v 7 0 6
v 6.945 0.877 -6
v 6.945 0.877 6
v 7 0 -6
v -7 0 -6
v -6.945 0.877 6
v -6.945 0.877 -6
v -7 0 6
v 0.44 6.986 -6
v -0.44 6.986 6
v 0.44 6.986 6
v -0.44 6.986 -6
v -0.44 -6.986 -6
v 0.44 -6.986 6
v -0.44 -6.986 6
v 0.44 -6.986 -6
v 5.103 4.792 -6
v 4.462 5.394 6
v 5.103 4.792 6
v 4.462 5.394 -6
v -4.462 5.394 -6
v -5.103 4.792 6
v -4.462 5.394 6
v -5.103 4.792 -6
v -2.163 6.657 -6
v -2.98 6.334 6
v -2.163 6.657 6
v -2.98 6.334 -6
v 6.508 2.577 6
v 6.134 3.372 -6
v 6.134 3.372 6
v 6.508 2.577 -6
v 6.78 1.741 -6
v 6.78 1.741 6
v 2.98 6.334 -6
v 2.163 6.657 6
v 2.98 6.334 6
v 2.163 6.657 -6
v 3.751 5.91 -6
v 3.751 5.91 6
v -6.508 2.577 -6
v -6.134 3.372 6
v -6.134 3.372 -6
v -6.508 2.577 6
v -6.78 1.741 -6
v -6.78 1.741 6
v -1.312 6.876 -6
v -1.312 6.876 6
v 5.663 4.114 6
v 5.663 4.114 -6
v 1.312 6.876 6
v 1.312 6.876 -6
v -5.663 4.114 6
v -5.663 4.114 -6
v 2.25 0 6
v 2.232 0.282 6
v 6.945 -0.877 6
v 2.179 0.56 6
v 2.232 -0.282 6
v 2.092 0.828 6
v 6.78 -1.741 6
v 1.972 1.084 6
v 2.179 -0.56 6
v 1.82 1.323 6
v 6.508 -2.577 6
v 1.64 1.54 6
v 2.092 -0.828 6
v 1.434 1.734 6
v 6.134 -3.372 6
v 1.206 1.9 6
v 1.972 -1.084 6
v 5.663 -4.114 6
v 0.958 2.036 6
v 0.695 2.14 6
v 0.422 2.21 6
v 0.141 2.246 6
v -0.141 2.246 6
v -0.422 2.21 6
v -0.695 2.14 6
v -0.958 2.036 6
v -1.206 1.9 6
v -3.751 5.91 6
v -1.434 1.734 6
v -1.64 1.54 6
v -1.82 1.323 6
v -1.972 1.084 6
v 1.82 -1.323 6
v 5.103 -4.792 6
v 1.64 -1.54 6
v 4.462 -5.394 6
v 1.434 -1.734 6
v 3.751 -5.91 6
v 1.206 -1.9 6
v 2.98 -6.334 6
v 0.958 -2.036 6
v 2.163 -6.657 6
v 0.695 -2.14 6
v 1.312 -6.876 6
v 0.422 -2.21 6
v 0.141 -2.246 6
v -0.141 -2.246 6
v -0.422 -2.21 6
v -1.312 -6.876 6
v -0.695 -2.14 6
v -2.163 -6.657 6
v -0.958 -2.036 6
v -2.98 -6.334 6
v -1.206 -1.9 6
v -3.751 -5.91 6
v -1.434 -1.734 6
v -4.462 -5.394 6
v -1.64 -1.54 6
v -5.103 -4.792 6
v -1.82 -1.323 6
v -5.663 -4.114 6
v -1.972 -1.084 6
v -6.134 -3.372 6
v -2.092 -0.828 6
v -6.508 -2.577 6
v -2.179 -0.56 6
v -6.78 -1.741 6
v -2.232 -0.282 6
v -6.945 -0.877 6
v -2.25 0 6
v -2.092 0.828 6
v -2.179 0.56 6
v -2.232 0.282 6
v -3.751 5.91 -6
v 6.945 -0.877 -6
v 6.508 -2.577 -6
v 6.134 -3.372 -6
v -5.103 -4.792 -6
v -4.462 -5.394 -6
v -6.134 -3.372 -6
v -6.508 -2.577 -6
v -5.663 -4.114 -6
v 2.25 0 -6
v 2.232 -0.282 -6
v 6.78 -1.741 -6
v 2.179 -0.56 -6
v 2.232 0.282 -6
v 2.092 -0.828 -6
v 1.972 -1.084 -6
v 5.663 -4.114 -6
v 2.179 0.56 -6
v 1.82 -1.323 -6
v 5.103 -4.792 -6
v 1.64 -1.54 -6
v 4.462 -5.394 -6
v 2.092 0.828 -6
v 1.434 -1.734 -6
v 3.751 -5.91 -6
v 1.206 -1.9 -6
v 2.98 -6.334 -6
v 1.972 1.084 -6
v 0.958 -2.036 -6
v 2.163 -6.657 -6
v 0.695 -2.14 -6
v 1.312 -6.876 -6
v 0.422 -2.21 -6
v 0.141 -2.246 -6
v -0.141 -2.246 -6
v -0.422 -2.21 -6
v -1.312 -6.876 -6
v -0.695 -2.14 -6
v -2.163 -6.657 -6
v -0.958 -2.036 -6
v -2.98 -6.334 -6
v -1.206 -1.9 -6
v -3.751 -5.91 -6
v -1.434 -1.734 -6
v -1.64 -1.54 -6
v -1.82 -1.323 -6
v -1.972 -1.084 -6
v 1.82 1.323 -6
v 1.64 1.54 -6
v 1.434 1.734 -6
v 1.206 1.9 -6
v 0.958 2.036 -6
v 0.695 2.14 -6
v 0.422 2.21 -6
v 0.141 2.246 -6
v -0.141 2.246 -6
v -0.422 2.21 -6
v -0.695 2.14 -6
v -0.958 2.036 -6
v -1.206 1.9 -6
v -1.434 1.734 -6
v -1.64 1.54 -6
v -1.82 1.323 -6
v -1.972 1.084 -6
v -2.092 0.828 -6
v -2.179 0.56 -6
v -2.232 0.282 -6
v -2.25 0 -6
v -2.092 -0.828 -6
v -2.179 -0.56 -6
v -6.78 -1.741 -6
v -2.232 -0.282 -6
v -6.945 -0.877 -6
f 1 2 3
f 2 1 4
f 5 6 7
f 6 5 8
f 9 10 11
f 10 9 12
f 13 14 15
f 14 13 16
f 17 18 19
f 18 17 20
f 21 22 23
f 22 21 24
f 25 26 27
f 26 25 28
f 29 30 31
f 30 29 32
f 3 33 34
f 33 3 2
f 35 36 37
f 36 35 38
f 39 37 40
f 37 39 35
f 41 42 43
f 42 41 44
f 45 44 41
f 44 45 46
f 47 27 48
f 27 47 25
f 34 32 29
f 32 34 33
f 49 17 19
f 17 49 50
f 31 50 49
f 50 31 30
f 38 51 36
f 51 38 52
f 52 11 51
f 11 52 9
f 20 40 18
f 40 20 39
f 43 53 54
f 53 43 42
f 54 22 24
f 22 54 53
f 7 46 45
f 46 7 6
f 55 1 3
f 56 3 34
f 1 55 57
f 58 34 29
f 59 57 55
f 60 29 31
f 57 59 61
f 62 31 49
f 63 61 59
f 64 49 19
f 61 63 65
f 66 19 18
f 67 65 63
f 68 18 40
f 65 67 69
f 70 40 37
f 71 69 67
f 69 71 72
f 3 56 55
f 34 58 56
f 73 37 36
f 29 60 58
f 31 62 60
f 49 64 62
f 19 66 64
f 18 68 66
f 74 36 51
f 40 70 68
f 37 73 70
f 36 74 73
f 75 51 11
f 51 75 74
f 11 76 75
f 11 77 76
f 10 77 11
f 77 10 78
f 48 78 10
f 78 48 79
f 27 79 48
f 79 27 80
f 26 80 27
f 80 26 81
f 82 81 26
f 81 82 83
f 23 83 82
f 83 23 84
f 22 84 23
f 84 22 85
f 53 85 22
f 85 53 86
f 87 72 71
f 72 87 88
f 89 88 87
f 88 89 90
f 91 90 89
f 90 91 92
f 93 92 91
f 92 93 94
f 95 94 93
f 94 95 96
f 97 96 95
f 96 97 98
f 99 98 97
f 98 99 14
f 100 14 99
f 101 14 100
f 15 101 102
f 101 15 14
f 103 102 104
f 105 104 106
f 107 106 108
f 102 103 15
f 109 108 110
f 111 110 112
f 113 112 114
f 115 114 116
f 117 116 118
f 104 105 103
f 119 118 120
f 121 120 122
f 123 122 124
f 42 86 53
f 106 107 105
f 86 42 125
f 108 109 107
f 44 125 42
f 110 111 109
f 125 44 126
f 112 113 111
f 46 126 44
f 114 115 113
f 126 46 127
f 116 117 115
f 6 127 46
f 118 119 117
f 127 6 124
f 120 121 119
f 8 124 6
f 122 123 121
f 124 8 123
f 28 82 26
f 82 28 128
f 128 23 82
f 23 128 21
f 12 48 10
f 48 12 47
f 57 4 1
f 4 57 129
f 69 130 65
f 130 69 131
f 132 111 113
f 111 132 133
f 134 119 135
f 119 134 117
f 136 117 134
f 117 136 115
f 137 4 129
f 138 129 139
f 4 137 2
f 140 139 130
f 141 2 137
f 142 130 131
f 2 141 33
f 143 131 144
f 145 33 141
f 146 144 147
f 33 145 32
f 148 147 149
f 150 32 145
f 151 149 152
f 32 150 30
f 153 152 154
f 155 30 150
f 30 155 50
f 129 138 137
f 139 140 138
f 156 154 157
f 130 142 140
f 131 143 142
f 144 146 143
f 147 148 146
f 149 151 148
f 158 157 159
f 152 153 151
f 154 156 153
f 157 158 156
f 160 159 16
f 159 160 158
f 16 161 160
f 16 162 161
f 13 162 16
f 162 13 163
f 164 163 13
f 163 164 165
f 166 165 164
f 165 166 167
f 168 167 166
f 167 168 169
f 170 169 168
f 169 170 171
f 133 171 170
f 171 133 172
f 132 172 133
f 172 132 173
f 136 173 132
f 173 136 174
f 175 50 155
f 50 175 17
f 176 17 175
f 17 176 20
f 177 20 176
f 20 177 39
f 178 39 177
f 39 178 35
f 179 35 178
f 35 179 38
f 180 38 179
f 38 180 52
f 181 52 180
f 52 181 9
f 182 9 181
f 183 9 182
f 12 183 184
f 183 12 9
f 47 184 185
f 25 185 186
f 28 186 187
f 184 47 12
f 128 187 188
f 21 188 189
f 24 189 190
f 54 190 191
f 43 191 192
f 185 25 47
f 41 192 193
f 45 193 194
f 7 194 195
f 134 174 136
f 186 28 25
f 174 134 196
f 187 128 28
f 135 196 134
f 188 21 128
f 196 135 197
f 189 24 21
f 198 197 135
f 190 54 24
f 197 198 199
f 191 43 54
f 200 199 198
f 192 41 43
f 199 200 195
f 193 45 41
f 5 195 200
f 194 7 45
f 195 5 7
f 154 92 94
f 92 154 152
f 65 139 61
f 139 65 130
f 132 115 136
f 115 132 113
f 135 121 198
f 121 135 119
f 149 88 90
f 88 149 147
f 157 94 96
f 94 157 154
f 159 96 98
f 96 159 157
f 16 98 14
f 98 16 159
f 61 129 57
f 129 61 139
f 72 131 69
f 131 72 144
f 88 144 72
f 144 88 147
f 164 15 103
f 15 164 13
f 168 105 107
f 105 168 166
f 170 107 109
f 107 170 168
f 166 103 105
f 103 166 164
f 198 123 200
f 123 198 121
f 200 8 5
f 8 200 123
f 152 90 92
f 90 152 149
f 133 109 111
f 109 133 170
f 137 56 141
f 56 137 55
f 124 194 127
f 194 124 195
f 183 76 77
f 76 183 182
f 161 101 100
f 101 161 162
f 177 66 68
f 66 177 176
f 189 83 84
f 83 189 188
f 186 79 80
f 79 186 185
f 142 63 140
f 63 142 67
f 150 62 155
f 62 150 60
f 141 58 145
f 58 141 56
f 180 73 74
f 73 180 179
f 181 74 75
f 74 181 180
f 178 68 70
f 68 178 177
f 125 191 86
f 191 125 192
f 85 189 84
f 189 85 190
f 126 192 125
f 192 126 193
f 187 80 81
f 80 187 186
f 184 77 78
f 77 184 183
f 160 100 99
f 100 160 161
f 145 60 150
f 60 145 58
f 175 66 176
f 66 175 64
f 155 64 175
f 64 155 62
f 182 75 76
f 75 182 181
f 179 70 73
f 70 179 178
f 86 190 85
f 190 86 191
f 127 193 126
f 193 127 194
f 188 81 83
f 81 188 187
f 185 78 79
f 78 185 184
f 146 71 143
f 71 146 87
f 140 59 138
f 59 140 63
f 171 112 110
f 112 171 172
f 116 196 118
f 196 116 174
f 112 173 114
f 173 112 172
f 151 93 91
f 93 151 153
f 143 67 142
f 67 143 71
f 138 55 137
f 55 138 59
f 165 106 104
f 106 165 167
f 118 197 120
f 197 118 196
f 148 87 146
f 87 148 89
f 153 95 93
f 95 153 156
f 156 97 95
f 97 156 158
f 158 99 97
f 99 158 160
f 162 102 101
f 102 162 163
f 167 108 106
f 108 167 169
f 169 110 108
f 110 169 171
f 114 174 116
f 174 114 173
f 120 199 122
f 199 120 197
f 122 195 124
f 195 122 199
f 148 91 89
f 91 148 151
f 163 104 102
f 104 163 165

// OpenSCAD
$fn = 50;


difference() {
	union() {
		translate(v = [0, 0, -6.0000000000]) {
			cylinder(h = 12, r = 7.0000000000);
		}
	}
	union() {
		translate(v = [0, 0, -100.0000000000]) {
			cylinder(h = 200, r = 2.2500000000);
		}
	}
}
